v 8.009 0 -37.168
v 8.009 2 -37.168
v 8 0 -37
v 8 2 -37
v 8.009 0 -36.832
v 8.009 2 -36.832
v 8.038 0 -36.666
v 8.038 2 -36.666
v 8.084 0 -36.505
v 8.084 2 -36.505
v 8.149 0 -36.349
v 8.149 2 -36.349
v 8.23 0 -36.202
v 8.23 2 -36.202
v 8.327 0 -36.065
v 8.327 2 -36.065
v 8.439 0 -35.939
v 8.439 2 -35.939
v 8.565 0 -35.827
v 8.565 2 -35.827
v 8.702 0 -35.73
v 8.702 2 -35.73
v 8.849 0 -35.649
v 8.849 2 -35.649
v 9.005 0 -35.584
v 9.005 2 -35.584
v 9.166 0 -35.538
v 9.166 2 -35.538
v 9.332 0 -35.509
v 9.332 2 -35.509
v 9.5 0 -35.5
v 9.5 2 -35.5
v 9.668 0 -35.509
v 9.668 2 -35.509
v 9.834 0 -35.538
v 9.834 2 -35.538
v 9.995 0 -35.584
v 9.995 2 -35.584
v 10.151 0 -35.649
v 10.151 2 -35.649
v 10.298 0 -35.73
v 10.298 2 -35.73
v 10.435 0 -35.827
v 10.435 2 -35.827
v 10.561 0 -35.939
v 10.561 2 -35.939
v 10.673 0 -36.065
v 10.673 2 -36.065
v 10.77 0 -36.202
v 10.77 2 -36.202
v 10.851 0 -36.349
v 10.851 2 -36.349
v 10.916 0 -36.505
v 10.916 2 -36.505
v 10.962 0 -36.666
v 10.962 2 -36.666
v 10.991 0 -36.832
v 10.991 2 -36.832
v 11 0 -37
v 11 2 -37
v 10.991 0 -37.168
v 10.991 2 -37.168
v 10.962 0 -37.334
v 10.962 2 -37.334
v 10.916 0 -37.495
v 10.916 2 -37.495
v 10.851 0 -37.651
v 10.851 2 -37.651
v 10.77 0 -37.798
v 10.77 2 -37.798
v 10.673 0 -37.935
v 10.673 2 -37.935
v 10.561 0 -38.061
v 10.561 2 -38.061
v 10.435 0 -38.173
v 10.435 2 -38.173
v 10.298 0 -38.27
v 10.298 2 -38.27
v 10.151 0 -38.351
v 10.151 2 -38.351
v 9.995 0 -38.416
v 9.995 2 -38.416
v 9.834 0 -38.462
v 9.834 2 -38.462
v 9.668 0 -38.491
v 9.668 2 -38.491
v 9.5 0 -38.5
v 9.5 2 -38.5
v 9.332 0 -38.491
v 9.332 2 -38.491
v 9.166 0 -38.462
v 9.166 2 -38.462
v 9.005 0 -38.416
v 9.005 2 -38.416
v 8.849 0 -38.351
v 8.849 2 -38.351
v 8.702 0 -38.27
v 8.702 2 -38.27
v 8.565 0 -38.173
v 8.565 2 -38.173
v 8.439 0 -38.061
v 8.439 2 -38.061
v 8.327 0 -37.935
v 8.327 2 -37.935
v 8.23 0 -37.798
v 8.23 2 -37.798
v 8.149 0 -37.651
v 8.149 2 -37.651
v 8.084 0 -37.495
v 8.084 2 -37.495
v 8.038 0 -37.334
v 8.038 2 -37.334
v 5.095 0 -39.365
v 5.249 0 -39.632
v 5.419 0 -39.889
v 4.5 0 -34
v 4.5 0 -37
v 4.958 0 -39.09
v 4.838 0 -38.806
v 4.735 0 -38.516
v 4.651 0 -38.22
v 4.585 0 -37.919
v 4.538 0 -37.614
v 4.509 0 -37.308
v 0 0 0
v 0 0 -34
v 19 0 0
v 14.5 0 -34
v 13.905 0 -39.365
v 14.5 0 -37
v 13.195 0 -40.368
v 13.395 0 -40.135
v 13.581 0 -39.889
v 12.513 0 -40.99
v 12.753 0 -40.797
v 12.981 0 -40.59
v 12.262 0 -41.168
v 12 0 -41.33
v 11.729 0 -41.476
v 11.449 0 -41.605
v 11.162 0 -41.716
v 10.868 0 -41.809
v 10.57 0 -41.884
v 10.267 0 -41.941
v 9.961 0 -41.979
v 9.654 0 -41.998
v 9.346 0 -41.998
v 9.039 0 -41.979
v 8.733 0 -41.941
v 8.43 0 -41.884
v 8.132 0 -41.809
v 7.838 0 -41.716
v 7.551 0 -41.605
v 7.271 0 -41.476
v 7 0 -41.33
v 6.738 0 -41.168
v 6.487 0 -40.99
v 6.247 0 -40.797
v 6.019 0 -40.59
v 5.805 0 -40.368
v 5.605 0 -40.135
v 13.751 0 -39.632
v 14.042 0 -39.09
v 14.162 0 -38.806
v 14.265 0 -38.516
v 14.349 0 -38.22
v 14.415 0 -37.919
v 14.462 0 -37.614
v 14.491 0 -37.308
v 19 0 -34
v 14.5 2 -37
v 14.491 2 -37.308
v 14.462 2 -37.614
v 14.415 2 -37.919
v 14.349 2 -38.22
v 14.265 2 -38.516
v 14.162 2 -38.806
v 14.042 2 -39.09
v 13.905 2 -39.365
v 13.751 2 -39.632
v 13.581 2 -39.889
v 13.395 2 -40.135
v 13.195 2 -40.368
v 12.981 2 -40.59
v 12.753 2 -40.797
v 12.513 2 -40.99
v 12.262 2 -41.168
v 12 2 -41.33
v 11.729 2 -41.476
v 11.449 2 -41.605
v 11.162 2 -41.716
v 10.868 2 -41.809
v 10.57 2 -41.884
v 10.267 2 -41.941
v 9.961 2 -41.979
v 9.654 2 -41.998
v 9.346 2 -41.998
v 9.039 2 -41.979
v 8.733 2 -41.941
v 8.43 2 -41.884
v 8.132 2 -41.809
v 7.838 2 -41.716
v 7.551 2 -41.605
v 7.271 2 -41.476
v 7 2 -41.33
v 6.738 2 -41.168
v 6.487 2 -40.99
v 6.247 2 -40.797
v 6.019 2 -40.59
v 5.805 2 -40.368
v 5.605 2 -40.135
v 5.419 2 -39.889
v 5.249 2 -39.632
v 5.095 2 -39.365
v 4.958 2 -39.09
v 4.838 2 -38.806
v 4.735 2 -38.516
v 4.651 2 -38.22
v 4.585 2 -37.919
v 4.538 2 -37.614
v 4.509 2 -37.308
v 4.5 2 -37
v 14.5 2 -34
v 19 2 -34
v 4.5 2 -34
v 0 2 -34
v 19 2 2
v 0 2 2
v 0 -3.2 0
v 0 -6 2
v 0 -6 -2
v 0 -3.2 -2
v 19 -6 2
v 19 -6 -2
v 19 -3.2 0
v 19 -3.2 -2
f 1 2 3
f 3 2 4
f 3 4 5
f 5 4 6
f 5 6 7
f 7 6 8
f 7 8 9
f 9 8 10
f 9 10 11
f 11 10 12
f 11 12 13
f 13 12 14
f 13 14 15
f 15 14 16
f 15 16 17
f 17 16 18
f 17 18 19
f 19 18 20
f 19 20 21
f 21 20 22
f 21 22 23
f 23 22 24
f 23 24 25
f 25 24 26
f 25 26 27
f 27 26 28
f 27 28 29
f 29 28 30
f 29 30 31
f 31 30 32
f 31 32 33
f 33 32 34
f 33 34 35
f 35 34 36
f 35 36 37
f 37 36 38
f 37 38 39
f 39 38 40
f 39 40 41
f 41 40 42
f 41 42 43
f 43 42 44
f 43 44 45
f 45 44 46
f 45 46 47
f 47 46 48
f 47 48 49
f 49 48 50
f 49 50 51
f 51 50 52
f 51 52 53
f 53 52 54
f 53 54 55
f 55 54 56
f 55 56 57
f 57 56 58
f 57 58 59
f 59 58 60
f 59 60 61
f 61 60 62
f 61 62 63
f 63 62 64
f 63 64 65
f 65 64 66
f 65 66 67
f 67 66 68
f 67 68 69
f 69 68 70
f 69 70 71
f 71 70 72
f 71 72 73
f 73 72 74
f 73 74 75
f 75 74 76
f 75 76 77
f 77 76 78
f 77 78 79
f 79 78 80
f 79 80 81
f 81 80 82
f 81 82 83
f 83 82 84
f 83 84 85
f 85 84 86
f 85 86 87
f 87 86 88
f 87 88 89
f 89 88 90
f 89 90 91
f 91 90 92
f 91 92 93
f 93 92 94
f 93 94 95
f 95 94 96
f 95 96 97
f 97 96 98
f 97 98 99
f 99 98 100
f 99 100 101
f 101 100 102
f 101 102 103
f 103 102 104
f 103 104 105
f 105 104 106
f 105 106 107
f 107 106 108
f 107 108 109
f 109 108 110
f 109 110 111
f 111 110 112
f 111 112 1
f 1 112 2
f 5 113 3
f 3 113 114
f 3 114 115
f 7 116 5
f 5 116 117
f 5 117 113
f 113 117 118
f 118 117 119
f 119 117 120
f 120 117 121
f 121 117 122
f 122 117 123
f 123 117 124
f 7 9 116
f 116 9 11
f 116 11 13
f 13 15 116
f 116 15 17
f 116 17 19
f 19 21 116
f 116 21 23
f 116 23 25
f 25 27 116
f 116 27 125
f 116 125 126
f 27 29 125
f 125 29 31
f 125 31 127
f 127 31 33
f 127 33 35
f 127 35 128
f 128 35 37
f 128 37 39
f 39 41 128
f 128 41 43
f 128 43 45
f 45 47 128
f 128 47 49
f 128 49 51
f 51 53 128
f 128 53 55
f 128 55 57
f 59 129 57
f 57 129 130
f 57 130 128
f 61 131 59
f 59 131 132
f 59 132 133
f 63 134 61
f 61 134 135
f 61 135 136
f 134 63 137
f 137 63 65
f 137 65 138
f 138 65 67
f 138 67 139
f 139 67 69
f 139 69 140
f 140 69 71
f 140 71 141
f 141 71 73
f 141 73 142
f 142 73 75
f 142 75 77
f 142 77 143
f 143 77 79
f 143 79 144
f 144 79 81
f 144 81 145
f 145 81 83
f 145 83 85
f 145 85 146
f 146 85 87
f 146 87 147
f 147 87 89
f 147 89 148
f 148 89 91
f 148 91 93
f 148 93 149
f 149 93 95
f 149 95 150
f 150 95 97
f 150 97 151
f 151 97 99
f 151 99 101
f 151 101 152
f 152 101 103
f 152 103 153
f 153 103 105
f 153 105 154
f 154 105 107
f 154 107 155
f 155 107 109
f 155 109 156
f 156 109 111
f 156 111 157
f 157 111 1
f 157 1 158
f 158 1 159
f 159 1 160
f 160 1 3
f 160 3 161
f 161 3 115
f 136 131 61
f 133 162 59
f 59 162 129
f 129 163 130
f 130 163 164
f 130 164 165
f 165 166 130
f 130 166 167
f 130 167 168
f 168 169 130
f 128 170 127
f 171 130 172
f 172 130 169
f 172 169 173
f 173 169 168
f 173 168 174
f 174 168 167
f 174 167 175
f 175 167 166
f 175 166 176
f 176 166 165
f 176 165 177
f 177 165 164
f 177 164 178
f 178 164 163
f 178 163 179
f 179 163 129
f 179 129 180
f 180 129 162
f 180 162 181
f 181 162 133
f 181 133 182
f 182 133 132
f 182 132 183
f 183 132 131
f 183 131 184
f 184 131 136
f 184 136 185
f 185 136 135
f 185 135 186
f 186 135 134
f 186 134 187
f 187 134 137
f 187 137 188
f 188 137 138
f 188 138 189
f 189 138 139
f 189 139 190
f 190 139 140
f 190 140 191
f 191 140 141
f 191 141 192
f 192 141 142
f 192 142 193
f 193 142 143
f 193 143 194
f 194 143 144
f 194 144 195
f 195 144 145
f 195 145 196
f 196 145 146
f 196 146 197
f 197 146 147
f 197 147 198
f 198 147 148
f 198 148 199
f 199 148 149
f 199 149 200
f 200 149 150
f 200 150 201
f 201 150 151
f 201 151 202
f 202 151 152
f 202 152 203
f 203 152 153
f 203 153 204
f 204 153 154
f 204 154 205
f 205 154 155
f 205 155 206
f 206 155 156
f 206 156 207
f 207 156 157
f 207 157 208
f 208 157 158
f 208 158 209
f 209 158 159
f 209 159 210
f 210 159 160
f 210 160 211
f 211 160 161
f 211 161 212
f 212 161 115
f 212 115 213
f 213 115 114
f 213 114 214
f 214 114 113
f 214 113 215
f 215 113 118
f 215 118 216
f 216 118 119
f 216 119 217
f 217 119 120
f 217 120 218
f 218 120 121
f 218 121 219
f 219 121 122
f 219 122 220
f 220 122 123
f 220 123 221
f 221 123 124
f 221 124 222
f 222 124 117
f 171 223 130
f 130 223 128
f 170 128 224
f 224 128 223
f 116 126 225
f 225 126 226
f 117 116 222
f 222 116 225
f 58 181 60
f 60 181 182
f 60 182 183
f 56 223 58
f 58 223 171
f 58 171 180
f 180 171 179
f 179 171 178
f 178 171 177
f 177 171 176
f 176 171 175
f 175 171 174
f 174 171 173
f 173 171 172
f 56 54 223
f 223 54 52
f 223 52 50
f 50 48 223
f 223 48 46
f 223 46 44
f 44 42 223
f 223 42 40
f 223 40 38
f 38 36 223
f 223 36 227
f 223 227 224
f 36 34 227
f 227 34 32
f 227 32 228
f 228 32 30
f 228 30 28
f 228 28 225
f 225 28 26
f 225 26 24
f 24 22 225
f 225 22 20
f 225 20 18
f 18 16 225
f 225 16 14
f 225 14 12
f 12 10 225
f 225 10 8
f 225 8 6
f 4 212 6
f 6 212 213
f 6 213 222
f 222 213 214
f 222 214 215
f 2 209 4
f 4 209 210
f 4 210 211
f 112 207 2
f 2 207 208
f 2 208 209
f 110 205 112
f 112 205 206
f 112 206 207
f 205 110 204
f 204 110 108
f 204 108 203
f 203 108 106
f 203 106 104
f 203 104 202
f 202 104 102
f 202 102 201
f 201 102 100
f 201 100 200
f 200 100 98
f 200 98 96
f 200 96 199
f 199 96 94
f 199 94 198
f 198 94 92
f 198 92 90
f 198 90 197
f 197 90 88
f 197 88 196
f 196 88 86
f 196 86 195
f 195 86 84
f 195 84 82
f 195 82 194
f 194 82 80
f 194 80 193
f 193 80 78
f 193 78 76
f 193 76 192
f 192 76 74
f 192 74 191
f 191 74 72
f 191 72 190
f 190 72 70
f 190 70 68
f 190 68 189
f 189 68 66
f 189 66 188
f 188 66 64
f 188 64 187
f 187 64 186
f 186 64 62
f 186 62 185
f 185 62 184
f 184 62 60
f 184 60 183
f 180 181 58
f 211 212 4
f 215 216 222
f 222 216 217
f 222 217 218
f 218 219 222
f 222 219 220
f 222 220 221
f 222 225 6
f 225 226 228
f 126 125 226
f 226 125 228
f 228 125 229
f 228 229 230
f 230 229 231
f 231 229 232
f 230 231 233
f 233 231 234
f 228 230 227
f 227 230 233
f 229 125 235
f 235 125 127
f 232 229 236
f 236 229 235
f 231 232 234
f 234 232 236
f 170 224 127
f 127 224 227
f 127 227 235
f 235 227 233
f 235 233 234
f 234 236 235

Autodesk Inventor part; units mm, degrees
ref_plane "YZ Plane" through (0, 0, 0) normal (1, 0, 0) x (0, 1, 0)
ref_plane "XZ Plane" through (0, 0, 0) normal (0, 1, 0) x (-1, 0, 0)
ref_plane "XY Plane" through (0, 0, 0) normal (0, 0, 1) x (1, 0, 0)
sketch "Esboço1" plane through (0, 0, 0) normal (1, 0, 0) x (0, 1, 0)
  line L0 (0, 0) -> (-3.2, 0)
  line L1 (-6, 0) -> (-6, 2)
  line L2 (-6, 2) -> (2, 2)
  line L3 (2, 2) -> (2, -42)
  line L4 (2, -42) -> (0, -42)
  line L5 (0, -42) -> (0, 0)
  line L6 (-6, 0) -> (-6, -2)
  line L7 (-6, -2) -> (-3.2, -2)
  line L8 (-3.2, -2) -> (-3.2, 0)
  dimension "d0" = 6
  dimension "d1" = 2
  dimension "d2" = 8
  dimension "d3" = 44
  dimension "d4" = 2
  dimension "d5" = 2.8
extrude "Extrusão1" add sketch "Esboço1" along normal blind 19
sketch "Esboço2" plane through (0, 2, 2) normal (0, 1, 0) x (1, 0, 0)
  line L0 (0, 44) -> (19, 44) projected
  line L1 (14.5, 44) -> (14.5, 36)
  line L2 (4.5, 36) -> (4.5, 44)
  line L3 (0, 44) -> (0, 0) projected
  line L4 (4.5, 36) -> (0, 36)
  line L5 (0, 36) -> (0, 44)
  line L6 (0, 44) -> (4.5, 44)
  line L7 (4.5, 44) -> (4.5, 36)
  line L8 (19, 44) -> (19, 0) projected
  line L9 (14.5, 36) -> (19, 36)
  line L10 (19, 36) -> (19, 44)
  line L11 (19, 44) -> (14.5, 44)
  line L12 (14.5, 44) -> (14.5, 36)
  point P0 (0, 2)
  point P1 (0, 36)
extrude "Extrusão2" cut sketch "Esboço2" against normal blind 19
fillet "Arredondamento1" radius 5 2 edges at (14.5, 1, -42) (4.5, 1, -42)
sketch "Esboço3" plane through (0, 2, 2) normal (0, 1, 0) x (1, 0, 0)
  circle A0 centre (9.5, 39) radius 1.5
  line L0 (14.5, 36) -> (14.5, 39) projected
  arc A1 (14.5, 39) -> (4.5, 39) centre (9.5, 39) ccw projected
  point P0 (0, 2)
  dimension "d14" = 3
  dimension "d15" = 5
  dimension "d16" = 0
extrude "Extrusão3" cut sketch "Esboço3" against normal blind 19
properties part number "tampa hc12"
